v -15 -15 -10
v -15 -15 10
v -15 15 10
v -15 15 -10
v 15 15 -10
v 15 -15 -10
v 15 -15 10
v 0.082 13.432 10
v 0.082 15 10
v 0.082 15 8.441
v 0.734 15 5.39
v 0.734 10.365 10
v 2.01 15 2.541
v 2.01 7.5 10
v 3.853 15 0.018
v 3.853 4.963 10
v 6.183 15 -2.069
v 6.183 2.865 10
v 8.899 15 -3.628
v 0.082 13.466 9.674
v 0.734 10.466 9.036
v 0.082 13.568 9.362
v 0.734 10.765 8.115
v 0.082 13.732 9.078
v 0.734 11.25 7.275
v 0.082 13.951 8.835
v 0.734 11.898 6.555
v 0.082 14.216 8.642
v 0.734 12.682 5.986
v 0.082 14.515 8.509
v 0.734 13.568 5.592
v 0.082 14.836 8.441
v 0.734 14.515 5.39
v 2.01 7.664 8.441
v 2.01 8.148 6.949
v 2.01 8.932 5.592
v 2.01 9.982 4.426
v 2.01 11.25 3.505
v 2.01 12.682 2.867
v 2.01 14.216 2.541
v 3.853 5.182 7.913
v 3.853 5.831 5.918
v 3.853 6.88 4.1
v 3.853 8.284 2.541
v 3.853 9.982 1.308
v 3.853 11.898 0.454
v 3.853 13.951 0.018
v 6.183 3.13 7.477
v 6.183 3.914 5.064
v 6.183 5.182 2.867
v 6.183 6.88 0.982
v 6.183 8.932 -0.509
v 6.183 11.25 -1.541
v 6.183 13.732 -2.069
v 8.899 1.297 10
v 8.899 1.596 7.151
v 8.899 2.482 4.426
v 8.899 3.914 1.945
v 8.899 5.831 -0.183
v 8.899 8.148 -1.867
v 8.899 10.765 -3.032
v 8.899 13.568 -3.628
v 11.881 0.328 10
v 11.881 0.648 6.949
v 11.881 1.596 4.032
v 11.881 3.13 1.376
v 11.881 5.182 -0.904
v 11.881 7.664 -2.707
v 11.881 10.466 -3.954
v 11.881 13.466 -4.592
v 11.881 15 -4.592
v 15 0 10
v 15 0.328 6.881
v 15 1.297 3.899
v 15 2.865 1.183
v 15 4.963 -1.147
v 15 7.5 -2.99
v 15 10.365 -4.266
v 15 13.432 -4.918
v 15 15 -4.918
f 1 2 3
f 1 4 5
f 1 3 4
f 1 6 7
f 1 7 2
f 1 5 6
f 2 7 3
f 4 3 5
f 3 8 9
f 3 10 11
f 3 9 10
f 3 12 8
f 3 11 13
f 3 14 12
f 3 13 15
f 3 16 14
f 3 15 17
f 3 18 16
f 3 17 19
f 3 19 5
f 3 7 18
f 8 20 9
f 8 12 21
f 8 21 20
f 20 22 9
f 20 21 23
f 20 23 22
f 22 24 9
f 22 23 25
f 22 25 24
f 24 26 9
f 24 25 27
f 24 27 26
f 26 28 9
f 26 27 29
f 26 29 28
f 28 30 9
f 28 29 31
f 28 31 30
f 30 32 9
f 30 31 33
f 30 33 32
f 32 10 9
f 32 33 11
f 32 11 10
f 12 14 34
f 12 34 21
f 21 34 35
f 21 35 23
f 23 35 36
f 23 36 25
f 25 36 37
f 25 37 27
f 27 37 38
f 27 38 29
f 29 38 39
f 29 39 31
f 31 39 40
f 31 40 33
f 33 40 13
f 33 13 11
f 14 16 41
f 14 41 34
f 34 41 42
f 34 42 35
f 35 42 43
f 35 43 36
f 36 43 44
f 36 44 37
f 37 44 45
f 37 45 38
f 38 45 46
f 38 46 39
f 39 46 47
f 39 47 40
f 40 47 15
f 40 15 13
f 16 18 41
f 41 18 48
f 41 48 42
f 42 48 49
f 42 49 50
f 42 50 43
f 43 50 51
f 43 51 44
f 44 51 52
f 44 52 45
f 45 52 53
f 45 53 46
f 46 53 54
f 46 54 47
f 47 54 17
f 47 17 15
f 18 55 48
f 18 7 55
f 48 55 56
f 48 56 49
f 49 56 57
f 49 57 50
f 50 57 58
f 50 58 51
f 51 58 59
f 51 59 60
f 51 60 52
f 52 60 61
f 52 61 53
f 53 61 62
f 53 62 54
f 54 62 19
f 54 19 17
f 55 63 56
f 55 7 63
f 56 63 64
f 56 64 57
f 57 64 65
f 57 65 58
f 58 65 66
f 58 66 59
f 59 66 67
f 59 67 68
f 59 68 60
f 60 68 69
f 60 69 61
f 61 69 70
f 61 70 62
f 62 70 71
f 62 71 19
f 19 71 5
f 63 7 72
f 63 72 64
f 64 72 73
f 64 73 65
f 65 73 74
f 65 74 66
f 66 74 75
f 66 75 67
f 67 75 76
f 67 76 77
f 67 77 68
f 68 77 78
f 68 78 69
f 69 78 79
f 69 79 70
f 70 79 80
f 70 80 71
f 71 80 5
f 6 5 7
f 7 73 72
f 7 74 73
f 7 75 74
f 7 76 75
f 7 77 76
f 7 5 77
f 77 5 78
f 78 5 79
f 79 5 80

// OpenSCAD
// Start: lazy_union
default_5_default_5();
// End: lazy_union

// Modules.

// 'PartMaterial undef-default - default 5.0'
module default_5_default_5() {
  // 'None : _combine_solids_and_holes'
  union() {
    // 'hole : _combine_solids_and_holes'
    union() {
      // '_combine_solids_and_holes'
      difference() {
        // 'overall : _combine_solids_and_holes'
        union() {
          // 'box'
          multmatrix(m=[[1.0, 0.0, 0.0, -15.0], [0.0, 1.0, 0.0, -15.0], [0.0, 0.0, 1.0, -10.0], [0.0, 0.0, 0.0, 1.0]]) {
            // 'box'
            color(c=[0.9, 0.1, 0.1, 1.0]) {
              // 'box : _combine_solids_and_holes'
              union() {
                // 'box'
                cube(size=[30.0, 30.0, 20.0]);
              }
            }
          }
        }
        // 'overall'
        multmatrix(m=[[0.0, 0.0, -1.0, 15.0], [-1.0, 0.0, 0.0, 15.0], [0.0, 1.0, 0.0, 10.0], [0.0, 0.0, 0.0, 1.0]]) {
          // 'sphere'
          color(c=[0.1, 0.1, 0.8, 1.0]) {
            // 'sphere : _combine_solids_and_holes'
            union() {
              // 'sphere'
              sphere(r=15.0);
            }
          }
        }
      }
    }
  }
} // end module default_5_default_5
